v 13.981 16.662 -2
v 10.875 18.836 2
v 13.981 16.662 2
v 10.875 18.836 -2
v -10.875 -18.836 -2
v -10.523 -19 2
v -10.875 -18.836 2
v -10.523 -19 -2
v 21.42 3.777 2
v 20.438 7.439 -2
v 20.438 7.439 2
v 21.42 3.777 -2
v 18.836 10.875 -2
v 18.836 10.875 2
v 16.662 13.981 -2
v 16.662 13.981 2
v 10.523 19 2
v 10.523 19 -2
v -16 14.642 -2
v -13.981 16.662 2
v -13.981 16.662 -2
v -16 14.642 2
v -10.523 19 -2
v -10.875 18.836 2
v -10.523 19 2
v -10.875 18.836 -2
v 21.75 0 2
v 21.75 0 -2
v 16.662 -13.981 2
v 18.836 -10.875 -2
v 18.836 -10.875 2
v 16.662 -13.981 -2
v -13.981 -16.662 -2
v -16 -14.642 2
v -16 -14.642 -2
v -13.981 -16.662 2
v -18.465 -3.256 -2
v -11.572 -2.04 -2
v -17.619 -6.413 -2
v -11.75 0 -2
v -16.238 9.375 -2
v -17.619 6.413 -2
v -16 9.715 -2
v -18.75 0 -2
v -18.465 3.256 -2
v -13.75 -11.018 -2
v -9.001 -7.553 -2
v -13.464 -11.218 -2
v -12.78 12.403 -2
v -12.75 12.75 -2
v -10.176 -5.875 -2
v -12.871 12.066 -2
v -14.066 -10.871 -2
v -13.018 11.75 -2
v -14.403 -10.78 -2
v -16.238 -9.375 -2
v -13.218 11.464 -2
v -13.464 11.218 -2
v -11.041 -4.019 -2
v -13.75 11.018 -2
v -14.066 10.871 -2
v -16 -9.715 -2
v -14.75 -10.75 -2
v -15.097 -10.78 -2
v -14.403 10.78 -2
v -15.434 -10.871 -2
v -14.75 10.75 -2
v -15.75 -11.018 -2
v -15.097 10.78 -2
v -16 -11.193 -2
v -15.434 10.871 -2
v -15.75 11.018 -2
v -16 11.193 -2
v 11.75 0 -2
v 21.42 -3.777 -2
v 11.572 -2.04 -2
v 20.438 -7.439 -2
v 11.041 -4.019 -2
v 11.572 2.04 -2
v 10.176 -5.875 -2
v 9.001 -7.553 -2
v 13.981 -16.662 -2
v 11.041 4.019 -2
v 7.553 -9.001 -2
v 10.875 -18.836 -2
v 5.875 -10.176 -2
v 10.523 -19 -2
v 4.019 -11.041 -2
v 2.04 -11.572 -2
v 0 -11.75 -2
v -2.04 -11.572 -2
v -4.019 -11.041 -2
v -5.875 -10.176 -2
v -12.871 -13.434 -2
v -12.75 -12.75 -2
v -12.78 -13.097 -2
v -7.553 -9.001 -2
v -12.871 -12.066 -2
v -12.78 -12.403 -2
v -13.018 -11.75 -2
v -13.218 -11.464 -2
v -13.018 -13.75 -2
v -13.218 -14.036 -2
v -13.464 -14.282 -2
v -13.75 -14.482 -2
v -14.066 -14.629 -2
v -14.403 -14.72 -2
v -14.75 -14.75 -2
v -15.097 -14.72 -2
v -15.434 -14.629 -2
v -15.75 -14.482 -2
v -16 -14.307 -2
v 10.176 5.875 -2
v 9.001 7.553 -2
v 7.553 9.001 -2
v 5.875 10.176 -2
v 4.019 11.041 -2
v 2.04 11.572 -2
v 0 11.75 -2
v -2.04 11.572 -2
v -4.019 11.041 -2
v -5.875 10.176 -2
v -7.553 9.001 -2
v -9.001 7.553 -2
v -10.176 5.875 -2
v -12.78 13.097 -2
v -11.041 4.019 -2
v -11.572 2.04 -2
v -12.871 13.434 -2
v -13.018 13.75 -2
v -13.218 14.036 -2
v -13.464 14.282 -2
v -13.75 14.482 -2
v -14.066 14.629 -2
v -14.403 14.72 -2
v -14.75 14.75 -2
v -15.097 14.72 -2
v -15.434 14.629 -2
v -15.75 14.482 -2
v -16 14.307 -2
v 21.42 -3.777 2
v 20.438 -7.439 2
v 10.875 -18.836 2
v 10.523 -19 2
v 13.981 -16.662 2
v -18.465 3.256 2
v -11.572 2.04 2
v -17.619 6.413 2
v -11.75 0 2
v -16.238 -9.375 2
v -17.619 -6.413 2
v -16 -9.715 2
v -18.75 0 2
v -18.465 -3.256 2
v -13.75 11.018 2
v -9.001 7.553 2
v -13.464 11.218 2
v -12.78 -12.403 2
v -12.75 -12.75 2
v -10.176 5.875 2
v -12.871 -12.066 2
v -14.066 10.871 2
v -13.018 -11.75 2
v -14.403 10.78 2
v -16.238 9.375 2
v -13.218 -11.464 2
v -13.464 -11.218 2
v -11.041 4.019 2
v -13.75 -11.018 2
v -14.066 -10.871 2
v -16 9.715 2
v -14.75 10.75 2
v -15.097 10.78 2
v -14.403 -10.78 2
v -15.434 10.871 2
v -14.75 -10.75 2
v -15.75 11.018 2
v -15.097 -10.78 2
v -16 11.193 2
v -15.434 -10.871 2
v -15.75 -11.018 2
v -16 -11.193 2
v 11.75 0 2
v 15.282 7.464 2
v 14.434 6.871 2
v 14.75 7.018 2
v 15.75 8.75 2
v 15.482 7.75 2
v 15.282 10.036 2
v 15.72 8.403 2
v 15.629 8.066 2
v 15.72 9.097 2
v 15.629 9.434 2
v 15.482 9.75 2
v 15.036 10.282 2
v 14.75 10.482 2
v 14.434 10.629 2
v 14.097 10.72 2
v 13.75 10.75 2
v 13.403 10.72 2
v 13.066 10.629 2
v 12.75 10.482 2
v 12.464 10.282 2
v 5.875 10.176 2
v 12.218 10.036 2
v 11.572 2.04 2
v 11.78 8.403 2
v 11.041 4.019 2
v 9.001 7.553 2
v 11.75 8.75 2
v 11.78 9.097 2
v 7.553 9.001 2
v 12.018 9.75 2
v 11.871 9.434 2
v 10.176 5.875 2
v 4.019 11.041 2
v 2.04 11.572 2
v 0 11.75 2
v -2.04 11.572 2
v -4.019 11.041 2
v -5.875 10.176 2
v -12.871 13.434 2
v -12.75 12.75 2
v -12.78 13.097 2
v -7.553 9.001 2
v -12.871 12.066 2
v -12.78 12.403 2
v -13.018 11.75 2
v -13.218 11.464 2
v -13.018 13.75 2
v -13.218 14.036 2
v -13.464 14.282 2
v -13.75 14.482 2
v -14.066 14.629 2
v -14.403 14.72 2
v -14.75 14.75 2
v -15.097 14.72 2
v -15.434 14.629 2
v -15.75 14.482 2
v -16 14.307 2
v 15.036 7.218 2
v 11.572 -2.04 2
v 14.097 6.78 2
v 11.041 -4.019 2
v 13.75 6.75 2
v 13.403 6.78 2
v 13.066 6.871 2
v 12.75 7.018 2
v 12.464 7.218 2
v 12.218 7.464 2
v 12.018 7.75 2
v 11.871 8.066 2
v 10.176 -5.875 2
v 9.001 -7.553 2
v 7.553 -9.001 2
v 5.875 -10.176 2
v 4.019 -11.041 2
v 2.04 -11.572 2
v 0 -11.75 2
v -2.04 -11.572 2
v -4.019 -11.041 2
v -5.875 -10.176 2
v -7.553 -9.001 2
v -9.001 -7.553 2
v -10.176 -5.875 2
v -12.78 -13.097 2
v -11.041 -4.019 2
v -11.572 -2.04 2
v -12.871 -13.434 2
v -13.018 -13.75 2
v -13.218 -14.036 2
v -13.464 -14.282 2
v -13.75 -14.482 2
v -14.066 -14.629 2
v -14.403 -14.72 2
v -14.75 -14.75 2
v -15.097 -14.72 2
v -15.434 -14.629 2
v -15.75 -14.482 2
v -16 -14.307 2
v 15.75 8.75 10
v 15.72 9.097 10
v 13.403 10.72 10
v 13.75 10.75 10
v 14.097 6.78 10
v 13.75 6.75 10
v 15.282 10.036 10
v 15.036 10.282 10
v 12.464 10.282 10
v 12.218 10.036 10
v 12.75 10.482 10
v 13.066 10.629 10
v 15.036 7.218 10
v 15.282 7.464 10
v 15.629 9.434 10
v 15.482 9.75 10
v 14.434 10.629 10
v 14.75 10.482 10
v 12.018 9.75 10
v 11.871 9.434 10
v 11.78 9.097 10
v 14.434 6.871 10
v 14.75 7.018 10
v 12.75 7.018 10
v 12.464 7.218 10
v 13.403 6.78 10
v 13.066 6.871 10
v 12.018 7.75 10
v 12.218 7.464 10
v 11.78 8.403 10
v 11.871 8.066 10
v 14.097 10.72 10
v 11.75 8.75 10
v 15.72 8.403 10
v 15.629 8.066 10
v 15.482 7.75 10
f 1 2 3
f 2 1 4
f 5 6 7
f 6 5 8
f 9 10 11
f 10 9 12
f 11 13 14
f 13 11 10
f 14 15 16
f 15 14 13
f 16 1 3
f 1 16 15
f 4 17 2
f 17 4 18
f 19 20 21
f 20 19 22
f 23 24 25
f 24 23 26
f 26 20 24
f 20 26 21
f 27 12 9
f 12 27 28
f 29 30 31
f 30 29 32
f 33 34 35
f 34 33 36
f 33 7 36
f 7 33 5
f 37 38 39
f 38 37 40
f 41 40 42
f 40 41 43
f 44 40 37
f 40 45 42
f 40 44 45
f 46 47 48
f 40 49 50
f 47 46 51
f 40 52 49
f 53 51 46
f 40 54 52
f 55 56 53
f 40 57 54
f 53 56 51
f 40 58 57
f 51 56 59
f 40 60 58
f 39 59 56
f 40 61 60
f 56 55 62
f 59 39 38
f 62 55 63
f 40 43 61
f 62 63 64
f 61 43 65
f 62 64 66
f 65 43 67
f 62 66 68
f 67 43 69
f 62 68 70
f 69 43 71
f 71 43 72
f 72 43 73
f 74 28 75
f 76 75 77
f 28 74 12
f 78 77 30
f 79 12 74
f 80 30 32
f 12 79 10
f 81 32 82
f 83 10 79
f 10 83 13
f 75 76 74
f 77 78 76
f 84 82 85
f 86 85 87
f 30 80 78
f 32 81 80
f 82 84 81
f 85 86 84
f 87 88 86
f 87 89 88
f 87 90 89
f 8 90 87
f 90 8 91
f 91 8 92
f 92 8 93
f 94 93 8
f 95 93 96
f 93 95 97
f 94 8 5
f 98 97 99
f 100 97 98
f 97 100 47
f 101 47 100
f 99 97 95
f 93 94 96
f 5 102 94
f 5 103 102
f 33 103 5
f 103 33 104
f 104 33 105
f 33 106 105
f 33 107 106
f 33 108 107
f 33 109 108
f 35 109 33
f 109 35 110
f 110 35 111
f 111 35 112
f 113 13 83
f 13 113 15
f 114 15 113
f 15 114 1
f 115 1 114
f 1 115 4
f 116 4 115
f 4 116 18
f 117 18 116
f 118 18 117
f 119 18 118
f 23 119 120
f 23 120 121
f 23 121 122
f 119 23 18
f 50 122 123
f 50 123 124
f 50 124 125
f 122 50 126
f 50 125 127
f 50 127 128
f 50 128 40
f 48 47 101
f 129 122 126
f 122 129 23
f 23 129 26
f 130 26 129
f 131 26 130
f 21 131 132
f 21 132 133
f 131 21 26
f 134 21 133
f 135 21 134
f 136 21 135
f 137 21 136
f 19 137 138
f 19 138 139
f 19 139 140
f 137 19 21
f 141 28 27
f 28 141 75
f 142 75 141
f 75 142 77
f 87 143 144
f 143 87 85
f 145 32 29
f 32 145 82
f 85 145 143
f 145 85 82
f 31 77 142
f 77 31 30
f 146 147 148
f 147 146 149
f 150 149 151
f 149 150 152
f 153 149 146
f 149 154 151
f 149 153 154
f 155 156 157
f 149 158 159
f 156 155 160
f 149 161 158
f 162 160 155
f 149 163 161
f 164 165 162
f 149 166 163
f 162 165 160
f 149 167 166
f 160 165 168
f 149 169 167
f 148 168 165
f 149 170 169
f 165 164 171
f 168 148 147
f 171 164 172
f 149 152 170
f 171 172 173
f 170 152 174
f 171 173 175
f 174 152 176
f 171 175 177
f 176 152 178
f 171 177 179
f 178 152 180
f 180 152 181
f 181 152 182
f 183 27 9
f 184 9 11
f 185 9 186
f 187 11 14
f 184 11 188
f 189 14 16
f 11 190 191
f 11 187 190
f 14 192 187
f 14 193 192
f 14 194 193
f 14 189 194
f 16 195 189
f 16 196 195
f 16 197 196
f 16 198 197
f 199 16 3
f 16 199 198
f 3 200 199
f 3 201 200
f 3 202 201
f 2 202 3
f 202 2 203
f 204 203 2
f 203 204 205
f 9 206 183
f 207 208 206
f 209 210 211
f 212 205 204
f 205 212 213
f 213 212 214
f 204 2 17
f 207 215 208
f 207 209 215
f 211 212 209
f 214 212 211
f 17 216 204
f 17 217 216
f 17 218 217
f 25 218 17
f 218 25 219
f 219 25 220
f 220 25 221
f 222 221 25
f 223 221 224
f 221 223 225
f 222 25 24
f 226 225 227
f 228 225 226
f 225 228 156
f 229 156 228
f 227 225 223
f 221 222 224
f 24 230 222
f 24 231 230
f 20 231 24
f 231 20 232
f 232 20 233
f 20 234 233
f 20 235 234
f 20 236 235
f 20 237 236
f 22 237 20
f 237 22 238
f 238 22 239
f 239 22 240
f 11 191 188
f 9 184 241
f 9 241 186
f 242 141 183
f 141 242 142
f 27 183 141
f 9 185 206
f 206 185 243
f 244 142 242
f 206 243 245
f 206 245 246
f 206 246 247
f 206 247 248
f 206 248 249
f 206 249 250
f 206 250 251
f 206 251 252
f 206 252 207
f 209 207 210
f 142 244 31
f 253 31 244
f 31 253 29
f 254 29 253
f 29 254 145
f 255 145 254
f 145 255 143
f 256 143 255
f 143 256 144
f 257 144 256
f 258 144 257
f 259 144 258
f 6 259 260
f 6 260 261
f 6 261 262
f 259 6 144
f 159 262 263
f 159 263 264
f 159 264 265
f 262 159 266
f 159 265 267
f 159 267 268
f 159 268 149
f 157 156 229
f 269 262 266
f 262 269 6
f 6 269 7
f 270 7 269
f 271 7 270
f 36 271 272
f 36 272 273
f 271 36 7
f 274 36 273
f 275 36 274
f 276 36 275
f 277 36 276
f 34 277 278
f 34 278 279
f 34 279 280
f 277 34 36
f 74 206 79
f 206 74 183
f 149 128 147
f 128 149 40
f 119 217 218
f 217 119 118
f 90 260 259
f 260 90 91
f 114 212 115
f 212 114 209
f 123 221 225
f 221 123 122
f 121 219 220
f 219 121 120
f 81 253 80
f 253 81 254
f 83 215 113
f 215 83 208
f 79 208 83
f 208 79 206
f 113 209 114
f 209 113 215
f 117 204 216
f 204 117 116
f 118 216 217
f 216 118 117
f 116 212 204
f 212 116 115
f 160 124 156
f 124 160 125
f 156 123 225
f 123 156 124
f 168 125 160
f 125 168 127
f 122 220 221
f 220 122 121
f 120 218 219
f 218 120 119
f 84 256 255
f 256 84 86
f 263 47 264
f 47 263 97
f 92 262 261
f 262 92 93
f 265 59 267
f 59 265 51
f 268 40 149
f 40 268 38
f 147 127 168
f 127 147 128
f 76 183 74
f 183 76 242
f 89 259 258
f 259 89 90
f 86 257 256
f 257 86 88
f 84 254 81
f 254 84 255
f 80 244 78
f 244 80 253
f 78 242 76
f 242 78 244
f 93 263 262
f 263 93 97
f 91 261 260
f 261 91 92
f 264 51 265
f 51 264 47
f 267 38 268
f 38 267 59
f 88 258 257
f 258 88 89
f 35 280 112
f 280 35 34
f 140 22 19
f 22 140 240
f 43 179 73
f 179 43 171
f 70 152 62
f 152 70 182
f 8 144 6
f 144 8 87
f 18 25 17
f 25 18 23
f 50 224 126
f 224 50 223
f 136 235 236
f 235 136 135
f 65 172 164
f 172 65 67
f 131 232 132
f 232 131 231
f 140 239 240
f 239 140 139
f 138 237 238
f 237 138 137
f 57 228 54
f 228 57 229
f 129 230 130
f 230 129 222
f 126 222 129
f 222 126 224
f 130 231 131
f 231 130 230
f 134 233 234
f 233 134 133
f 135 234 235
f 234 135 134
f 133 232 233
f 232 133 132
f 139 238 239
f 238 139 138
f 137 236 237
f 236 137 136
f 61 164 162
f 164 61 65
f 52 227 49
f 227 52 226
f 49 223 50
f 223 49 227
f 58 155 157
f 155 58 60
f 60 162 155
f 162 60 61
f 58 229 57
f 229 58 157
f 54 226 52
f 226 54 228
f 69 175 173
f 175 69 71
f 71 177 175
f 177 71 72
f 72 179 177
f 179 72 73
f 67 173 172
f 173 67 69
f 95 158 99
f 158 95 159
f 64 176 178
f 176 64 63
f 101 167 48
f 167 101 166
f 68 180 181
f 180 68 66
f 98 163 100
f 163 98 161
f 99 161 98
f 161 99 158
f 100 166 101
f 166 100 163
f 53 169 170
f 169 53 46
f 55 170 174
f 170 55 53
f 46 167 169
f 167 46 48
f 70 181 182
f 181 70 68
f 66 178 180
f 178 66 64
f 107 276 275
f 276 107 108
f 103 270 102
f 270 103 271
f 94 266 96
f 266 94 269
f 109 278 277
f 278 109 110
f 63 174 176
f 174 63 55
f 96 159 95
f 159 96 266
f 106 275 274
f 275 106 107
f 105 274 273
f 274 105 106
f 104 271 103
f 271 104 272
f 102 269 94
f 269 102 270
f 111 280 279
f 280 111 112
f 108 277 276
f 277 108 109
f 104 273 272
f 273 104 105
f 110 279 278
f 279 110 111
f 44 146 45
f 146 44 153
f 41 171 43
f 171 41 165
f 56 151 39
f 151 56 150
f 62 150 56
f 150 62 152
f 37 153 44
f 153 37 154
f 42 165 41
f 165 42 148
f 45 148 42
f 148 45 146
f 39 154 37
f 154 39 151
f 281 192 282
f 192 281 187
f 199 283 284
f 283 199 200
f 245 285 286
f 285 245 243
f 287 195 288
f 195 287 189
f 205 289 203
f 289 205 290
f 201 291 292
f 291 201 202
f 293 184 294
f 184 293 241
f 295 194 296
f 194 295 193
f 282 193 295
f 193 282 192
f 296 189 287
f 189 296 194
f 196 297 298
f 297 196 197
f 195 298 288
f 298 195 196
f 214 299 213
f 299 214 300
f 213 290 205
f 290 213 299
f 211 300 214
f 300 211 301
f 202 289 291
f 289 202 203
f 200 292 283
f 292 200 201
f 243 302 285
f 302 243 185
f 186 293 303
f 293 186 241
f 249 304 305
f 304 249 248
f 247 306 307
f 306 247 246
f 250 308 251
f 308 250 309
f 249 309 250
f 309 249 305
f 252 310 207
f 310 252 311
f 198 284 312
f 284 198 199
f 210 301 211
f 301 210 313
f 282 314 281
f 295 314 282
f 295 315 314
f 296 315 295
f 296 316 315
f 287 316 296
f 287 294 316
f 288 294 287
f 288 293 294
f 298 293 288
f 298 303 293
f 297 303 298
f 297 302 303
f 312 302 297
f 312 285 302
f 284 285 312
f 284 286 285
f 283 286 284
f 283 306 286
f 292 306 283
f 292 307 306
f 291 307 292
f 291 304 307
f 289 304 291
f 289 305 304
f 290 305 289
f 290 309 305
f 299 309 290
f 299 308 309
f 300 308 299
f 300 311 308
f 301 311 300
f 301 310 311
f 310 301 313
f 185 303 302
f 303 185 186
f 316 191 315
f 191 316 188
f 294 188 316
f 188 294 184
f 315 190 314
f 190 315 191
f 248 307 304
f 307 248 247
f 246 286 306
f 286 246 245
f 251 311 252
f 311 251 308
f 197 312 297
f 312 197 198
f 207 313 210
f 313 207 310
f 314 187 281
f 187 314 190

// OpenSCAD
J105ShieldBase();
module J105ShieldBase(
y=38,
z=4,
d=43.5,
id=23.5,
id2=4
){	
	difference(){
		intersection(){
			translate([3,0,0])
				union(){
					cube([y,y,z],center=true);
				}
			difference(){
				cylinder(z,d1=d,d2=d,$fn=36,center=true);
				cylinder(z+1,d1=id,d2=id,$fn=36,center=true);
			}
		}
	translate([-id/2-3,id/2+1,0])
		cylinder(z+1,d1=id2,d2=id2,$fn=36,center=true);		
	translate([-id/2-3,-id/2-1,0])
		cylinder(z+1,d1=id2,d2=id2,$fn=36,center=true);		
	}
	intersection(){
		cylinder(z,d1=d-6,d2=d-6,$fn=36,center=true);
		translate([-id/2-4,0,0])
			cube([6,20,z],$fn=36,center=true);
	}
	translate([+id/2+2,id/2-3,4])
		cylinder(12,d1=id2,d2=id2,$fn=36,center=true);		
	
}
